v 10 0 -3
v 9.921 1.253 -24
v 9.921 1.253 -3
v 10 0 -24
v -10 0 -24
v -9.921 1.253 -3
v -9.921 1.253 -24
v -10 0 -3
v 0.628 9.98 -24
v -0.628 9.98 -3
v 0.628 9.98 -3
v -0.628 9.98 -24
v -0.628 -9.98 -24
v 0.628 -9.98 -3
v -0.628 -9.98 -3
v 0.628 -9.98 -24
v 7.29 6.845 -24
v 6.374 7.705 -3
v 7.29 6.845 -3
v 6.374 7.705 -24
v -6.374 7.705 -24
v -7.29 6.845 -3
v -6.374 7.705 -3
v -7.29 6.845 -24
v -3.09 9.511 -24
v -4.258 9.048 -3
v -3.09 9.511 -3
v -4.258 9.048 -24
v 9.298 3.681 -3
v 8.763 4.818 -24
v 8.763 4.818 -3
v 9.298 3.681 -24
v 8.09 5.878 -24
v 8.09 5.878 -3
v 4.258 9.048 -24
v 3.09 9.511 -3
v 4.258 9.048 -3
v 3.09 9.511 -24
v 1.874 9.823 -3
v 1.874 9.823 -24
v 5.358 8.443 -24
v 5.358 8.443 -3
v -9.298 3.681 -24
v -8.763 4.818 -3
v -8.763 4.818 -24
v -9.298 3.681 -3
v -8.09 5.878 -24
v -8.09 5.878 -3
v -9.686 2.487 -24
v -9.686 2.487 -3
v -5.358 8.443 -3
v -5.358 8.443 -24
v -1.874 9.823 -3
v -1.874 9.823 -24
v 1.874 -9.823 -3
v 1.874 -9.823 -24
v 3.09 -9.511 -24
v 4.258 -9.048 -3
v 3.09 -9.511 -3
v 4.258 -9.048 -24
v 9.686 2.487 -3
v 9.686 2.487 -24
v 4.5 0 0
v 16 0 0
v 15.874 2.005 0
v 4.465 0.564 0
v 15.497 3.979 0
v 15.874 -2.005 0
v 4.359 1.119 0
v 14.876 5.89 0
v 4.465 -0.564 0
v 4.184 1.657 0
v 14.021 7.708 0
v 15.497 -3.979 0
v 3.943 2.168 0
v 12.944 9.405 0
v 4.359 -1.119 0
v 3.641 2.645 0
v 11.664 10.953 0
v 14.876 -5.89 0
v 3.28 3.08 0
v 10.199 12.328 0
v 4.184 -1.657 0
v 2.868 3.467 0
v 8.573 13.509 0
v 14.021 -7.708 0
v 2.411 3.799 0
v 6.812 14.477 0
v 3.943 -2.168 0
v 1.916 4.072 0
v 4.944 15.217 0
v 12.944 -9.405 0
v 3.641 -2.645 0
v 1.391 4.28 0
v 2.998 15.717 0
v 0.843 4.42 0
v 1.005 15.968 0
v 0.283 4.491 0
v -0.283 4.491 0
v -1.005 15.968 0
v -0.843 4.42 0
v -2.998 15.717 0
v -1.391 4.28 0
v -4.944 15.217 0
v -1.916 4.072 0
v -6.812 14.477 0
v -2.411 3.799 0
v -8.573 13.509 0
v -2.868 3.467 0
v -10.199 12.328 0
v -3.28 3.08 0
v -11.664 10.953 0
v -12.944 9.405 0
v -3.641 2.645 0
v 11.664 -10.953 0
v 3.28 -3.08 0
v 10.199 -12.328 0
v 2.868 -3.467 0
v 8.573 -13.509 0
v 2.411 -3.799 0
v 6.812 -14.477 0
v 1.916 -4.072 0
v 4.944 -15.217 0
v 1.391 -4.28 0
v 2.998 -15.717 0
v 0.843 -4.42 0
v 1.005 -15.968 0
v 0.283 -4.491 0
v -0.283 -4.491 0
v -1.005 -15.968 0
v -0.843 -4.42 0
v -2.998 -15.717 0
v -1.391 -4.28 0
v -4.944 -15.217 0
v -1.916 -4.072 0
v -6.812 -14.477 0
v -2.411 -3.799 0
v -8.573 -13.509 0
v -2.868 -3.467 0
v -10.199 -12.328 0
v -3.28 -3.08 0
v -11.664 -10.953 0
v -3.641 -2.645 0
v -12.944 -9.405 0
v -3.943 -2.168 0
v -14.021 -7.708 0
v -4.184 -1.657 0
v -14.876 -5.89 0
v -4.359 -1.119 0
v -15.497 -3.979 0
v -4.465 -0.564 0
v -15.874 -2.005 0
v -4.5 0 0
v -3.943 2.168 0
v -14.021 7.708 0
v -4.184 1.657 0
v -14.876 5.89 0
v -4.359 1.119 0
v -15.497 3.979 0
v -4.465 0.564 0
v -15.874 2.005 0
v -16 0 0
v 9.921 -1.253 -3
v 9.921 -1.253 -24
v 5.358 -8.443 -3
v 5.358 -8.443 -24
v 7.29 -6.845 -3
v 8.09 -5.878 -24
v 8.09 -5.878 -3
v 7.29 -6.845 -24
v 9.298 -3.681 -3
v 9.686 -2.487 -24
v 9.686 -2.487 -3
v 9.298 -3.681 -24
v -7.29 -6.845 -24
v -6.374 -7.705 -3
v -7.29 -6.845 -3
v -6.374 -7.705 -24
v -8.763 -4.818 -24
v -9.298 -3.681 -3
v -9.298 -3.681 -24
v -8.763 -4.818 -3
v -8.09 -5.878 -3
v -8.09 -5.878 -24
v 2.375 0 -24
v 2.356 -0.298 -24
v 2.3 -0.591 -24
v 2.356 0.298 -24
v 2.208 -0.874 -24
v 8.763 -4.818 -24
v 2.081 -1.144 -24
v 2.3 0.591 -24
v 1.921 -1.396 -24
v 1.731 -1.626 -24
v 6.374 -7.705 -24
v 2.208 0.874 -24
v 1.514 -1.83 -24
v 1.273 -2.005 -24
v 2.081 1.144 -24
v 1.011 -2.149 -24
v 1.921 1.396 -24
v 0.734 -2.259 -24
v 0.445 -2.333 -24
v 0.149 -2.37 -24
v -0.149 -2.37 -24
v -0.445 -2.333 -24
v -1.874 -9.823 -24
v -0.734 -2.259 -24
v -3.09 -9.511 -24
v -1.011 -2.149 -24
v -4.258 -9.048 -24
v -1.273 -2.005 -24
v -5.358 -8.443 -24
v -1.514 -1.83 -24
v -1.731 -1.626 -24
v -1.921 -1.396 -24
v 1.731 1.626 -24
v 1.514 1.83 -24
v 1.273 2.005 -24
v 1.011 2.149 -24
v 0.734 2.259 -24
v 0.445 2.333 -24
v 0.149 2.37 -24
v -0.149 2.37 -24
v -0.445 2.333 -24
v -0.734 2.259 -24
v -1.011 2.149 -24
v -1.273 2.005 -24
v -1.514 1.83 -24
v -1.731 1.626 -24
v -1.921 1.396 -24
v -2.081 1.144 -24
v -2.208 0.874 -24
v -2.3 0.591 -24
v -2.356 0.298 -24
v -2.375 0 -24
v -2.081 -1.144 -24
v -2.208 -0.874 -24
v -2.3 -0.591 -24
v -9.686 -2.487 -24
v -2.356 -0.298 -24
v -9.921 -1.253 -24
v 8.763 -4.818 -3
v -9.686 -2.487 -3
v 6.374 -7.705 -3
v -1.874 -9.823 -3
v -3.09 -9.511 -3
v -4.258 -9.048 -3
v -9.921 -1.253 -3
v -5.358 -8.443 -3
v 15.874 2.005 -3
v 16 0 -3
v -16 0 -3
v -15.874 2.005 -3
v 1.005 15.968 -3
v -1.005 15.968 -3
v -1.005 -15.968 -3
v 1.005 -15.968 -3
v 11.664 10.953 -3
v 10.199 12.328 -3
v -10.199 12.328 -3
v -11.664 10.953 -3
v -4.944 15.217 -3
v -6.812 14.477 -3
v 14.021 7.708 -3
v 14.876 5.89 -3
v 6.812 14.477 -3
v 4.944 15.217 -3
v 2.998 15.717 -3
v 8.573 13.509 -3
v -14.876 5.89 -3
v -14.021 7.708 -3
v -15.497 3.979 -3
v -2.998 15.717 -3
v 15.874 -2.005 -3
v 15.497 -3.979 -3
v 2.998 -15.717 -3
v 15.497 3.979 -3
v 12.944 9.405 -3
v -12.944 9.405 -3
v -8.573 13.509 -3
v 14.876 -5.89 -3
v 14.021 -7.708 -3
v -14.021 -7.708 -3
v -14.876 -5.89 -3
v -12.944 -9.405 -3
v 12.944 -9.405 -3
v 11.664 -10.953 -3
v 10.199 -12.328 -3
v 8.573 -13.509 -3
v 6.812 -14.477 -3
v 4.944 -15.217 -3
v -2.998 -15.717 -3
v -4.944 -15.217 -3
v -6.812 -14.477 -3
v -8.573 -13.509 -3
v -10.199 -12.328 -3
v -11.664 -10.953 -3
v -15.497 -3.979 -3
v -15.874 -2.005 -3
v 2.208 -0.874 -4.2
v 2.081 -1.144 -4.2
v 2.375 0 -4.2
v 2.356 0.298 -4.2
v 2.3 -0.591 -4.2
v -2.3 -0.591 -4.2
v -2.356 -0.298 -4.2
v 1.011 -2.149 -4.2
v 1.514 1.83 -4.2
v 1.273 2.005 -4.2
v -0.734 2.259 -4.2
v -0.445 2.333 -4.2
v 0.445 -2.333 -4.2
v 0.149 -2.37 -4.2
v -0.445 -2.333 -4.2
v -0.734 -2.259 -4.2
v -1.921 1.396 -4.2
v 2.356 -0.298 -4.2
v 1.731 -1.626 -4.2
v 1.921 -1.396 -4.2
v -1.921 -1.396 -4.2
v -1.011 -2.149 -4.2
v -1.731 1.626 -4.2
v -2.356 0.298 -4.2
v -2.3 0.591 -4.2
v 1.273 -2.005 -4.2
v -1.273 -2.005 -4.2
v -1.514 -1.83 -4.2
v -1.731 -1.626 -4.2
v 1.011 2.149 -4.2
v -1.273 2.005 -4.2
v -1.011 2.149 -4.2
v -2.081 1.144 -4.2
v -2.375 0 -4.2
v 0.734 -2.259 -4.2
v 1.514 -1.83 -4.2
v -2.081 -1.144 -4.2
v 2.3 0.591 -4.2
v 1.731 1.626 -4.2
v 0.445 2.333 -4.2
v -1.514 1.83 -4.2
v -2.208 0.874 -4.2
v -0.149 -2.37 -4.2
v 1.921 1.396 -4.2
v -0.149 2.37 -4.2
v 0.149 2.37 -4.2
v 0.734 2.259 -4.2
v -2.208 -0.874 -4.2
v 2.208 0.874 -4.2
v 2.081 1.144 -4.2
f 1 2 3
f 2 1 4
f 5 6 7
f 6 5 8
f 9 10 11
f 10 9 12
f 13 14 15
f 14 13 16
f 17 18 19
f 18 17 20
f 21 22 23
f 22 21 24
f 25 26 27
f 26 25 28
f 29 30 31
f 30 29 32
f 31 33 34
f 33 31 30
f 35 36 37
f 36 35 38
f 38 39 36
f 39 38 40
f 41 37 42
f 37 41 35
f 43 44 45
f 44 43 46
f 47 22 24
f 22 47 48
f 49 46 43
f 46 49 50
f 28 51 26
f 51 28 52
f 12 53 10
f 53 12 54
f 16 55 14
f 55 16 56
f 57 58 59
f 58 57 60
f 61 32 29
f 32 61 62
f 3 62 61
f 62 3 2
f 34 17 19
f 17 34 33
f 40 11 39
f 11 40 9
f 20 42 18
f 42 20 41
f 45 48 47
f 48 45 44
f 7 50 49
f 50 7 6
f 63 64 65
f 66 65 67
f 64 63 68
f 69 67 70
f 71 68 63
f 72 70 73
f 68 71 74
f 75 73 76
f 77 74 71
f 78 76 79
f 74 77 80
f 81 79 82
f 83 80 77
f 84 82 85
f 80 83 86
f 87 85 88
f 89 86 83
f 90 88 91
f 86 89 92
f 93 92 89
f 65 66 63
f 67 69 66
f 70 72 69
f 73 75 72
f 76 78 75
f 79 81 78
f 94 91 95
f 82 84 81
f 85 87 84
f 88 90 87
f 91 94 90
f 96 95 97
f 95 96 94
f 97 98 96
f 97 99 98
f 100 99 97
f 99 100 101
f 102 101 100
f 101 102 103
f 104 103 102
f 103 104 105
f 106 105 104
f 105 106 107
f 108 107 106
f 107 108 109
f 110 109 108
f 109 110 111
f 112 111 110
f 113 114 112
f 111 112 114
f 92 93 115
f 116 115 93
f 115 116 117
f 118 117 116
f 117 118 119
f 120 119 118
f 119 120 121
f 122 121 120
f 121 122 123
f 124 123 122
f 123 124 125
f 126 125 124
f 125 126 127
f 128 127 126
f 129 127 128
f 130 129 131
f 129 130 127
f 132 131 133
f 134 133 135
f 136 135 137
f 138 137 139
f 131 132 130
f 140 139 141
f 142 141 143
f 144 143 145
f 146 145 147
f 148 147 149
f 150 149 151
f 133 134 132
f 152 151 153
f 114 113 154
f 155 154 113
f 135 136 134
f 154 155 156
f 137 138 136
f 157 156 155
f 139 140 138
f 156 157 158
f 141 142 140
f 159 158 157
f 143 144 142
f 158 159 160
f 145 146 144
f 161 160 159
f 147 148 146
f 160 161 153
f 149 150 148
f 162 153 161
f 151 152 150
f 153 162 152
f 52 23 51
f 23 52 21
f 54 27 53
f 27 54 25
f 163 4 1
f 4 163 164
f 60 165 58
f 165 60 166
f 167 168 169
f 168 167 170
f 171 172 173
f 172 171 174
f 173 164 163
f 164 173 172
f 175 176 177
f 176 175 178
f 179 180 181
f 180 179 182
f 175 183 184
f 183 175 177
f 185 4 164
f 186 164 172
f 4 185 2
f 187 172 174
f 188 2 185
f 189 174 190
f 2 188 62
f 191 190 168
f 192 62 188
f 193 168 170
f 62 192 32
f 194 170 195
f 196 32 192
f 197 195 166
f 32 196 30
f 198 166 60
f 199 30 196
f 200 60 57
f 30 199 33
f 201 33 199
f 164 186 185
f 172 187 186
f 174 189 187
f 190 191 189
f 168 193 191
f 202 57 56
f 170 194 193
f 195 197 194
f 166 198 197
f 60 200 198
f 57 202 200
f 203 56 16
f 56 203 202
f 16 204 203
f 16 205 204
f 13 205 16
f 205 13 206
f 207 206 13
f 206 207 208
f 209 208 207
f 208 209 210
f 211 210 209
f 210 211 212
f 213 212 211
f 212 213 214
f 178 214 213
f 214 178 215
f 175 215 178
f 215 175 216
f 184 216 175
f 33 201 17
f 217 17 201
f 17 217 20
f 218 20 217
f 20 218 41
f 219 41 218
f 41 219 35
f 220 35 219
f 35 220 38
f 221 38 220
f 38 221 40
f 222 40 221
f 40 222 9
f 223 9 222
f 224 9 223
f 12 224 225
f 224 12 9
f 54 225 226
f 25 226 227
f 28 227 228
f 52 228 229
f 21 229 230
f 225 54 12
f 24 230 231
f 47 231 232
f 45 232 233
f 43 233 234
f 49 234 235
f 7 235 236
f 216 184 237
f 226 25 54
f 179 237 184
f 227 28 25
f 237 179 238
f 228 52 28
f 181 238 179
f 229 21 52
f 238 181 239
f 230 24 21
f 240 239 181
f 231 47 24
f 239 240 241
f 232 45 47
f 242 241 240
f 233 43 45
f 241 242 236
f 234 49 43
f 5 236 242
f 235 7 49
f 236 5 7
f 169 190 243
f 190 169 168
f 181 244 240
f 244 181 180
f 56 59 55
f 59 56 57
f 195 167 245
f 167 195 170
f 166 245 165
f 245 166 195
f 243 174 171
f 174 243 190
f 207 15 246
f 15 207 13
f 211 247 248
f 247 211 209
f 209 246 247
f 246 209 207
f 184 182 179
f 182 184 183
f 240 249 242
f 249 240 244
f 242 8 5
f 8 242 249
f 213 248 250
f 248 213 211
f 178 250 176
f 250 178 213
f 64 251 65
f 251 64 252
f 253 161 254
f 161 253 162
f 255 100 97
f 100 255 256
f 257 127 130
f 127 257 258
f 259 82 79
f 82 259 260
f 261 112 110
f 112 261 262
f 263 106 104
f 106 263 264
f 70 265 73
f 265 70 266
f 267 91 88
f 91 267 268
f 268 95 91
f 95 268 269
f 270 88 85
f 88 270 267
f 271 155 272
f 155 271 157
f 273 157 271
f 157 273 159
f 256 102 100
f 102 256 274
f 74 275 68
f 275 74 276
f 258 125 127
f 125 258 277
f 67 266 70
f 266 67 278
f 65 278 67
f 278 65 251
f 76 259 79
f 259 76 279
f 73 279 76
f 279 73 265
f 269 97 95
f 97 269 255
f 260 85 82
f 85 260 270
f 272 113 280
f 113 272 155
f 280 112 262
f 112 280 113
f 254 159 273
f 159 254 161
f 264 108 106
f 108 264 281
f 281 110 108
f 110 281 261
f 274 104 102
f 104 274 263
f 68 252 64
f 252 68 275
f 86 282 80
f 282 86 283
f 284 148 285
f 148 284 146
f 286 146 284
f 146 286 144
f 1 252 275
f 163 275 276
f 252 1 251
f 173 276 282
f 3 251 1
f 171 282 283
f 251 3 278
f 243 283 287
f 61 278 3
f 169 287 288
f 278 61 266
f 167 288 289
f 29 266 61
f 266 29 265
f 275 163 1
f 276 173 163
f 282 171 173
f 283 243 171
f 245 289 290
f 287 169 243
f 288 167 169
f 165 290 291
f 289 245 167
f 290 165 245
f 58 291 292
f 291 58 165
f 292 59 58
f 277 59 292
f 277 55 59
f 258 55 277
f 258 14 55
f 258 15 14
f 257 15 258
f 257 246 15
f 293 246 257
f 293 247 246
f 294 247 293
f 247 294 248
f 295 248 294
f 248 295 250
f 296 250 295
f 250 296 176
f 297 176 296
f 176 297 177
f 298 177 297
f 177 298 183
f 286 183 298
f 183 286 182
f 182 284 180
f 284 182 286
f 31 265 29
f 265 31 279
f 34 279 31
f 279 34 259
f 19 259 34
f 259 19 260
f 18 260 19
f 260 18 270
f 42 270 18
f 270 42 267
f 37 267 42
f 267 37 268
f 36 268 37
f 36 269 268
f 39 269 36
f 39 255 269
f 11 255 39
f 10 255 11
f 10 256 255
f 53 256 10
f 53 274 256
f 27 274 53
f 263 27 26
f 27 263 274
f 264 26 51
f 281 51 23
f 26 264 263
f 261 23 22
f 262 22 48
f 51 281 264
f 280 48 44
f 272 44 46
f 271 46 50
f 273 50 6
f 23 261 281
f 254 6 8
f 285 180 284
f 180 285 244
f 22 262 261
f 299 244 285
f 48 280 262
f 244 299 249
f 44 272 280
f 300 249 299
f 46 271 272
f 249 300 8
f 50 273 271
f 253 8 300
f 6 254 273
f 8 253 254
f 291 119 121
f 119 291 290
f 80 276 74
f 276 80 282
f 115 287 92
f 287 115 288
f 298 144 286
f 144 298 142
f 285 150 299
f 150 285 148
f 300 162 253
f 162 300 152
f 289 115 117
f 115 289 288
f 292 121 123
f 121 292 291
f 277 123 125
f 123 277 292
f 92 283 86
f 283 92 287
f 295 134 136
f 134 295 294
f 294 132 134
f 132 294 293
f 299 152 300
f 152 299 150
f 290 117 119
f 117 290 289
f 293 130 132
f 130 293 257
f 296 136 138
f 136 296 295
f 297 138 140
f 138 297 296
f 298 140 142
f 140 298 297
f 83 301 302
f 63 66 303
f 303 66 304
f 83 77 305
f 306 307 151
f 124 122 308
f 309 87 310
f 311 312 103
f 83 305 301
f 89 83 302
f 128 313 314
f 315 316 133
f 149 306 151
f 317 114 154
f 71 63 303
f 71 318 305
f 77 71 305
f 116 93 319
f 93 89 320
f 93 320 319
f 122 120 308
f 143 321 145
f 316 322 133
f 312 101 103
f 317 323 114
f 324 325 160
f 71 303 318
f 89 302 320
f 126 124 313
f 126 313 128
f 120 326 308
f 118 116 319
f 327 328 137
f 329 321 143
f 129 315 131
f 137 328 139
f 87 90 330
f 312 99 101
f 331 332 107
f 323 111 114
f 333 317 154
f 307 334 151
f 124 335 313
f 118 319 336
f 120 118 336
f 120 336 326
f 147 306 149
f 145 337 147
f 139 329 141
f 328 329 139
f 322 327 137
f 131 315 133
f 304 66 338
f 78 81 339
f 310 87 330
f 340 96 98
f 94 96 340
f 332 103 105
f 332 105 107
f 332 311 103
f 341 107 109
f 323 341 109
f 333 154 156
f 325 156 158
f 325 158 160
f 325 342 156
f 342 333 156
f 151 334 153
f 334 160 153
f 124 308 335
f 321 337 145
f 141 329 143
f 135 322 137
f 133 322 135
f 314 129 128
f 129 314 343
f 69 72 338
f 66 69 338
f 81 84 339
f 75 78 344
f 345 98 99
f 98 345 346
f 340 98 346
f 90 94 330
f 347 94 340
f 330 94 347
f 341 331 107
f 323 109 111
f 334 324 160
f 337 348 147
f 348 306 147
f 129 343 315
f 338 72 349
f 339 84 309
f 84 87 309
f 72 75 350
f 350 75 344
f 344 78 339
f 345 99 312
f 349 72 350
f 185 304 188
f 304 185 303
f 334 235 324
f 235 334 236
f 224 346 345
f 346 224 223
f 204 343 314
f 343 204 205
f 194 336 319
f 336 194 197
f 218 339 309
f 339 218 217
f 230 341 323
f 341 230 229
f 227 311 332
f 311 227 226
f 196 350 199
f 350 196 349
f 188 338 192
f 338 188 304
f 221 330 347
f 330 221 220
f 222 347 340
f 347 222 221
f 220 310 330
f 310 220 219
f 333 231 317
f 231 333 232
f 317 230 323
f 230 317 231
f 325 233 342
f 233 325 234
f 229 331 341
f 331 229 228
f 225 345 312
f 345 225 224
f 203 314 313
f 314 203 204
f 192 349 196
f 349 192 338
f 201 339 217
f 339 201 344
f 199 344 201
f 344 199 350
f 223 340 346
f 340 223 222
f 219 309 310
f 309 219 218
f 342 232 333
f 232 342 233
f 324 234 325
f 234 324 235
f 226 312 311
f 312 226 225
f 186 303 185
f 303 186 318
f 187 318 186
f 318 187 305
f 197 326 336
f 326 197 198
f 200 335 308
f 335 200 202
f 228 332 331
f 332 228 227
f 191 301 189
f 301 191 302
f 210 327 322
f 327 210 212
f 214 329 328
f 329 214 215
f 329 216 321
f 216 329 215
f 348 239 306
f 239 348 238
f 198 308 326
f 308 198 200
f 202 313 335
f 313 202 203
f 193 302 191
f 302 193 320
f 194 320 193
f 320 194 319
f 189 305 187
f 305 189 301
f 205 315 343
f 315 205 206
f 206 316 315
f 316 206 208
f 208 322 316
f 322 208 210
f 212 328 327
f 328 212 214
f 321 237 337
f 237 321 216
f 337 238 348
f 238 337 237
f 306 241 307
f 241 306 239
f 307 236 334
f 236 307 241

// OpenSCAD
$fn = 50;


difference() {
	union() {
		translate(v = [0, 0, -24.0000000000]) {
			cylinder(h = 24, r = 10.0000000000);
		}
		translate(v = [0, 0, -3.0000000000]) {
			cylinder(h = 3, r = 16.0000000000);
		}
	}
	union() {
		translate(v = [0, 0, 0]) {
			rotate(a = [0, 0, 0]) {
				difference() {
					union() {
						#translate(v = [0, 0, -24.0000000000]) {
							cylinder(h = 24, r = 2.2500000000);
						}
						#translate(v = [0, 0, -4.2000000000]) {
							cylinder(h = 4.2000000000, r = 10.0000000000, r1 = 2.3750000000, r2 = 4.5000000000);
						}
						#translate(v = [0, 0, -24.0000000000]) {
							cylinder(h = 24, r = 2.3750000000);
						}
						#translate(v = [0, 0, -24.0000000000]) {
							cylinder(h = 24, r = 2.2500000000);
						}
					}
					union();
				}
			}
		}
	}
}
